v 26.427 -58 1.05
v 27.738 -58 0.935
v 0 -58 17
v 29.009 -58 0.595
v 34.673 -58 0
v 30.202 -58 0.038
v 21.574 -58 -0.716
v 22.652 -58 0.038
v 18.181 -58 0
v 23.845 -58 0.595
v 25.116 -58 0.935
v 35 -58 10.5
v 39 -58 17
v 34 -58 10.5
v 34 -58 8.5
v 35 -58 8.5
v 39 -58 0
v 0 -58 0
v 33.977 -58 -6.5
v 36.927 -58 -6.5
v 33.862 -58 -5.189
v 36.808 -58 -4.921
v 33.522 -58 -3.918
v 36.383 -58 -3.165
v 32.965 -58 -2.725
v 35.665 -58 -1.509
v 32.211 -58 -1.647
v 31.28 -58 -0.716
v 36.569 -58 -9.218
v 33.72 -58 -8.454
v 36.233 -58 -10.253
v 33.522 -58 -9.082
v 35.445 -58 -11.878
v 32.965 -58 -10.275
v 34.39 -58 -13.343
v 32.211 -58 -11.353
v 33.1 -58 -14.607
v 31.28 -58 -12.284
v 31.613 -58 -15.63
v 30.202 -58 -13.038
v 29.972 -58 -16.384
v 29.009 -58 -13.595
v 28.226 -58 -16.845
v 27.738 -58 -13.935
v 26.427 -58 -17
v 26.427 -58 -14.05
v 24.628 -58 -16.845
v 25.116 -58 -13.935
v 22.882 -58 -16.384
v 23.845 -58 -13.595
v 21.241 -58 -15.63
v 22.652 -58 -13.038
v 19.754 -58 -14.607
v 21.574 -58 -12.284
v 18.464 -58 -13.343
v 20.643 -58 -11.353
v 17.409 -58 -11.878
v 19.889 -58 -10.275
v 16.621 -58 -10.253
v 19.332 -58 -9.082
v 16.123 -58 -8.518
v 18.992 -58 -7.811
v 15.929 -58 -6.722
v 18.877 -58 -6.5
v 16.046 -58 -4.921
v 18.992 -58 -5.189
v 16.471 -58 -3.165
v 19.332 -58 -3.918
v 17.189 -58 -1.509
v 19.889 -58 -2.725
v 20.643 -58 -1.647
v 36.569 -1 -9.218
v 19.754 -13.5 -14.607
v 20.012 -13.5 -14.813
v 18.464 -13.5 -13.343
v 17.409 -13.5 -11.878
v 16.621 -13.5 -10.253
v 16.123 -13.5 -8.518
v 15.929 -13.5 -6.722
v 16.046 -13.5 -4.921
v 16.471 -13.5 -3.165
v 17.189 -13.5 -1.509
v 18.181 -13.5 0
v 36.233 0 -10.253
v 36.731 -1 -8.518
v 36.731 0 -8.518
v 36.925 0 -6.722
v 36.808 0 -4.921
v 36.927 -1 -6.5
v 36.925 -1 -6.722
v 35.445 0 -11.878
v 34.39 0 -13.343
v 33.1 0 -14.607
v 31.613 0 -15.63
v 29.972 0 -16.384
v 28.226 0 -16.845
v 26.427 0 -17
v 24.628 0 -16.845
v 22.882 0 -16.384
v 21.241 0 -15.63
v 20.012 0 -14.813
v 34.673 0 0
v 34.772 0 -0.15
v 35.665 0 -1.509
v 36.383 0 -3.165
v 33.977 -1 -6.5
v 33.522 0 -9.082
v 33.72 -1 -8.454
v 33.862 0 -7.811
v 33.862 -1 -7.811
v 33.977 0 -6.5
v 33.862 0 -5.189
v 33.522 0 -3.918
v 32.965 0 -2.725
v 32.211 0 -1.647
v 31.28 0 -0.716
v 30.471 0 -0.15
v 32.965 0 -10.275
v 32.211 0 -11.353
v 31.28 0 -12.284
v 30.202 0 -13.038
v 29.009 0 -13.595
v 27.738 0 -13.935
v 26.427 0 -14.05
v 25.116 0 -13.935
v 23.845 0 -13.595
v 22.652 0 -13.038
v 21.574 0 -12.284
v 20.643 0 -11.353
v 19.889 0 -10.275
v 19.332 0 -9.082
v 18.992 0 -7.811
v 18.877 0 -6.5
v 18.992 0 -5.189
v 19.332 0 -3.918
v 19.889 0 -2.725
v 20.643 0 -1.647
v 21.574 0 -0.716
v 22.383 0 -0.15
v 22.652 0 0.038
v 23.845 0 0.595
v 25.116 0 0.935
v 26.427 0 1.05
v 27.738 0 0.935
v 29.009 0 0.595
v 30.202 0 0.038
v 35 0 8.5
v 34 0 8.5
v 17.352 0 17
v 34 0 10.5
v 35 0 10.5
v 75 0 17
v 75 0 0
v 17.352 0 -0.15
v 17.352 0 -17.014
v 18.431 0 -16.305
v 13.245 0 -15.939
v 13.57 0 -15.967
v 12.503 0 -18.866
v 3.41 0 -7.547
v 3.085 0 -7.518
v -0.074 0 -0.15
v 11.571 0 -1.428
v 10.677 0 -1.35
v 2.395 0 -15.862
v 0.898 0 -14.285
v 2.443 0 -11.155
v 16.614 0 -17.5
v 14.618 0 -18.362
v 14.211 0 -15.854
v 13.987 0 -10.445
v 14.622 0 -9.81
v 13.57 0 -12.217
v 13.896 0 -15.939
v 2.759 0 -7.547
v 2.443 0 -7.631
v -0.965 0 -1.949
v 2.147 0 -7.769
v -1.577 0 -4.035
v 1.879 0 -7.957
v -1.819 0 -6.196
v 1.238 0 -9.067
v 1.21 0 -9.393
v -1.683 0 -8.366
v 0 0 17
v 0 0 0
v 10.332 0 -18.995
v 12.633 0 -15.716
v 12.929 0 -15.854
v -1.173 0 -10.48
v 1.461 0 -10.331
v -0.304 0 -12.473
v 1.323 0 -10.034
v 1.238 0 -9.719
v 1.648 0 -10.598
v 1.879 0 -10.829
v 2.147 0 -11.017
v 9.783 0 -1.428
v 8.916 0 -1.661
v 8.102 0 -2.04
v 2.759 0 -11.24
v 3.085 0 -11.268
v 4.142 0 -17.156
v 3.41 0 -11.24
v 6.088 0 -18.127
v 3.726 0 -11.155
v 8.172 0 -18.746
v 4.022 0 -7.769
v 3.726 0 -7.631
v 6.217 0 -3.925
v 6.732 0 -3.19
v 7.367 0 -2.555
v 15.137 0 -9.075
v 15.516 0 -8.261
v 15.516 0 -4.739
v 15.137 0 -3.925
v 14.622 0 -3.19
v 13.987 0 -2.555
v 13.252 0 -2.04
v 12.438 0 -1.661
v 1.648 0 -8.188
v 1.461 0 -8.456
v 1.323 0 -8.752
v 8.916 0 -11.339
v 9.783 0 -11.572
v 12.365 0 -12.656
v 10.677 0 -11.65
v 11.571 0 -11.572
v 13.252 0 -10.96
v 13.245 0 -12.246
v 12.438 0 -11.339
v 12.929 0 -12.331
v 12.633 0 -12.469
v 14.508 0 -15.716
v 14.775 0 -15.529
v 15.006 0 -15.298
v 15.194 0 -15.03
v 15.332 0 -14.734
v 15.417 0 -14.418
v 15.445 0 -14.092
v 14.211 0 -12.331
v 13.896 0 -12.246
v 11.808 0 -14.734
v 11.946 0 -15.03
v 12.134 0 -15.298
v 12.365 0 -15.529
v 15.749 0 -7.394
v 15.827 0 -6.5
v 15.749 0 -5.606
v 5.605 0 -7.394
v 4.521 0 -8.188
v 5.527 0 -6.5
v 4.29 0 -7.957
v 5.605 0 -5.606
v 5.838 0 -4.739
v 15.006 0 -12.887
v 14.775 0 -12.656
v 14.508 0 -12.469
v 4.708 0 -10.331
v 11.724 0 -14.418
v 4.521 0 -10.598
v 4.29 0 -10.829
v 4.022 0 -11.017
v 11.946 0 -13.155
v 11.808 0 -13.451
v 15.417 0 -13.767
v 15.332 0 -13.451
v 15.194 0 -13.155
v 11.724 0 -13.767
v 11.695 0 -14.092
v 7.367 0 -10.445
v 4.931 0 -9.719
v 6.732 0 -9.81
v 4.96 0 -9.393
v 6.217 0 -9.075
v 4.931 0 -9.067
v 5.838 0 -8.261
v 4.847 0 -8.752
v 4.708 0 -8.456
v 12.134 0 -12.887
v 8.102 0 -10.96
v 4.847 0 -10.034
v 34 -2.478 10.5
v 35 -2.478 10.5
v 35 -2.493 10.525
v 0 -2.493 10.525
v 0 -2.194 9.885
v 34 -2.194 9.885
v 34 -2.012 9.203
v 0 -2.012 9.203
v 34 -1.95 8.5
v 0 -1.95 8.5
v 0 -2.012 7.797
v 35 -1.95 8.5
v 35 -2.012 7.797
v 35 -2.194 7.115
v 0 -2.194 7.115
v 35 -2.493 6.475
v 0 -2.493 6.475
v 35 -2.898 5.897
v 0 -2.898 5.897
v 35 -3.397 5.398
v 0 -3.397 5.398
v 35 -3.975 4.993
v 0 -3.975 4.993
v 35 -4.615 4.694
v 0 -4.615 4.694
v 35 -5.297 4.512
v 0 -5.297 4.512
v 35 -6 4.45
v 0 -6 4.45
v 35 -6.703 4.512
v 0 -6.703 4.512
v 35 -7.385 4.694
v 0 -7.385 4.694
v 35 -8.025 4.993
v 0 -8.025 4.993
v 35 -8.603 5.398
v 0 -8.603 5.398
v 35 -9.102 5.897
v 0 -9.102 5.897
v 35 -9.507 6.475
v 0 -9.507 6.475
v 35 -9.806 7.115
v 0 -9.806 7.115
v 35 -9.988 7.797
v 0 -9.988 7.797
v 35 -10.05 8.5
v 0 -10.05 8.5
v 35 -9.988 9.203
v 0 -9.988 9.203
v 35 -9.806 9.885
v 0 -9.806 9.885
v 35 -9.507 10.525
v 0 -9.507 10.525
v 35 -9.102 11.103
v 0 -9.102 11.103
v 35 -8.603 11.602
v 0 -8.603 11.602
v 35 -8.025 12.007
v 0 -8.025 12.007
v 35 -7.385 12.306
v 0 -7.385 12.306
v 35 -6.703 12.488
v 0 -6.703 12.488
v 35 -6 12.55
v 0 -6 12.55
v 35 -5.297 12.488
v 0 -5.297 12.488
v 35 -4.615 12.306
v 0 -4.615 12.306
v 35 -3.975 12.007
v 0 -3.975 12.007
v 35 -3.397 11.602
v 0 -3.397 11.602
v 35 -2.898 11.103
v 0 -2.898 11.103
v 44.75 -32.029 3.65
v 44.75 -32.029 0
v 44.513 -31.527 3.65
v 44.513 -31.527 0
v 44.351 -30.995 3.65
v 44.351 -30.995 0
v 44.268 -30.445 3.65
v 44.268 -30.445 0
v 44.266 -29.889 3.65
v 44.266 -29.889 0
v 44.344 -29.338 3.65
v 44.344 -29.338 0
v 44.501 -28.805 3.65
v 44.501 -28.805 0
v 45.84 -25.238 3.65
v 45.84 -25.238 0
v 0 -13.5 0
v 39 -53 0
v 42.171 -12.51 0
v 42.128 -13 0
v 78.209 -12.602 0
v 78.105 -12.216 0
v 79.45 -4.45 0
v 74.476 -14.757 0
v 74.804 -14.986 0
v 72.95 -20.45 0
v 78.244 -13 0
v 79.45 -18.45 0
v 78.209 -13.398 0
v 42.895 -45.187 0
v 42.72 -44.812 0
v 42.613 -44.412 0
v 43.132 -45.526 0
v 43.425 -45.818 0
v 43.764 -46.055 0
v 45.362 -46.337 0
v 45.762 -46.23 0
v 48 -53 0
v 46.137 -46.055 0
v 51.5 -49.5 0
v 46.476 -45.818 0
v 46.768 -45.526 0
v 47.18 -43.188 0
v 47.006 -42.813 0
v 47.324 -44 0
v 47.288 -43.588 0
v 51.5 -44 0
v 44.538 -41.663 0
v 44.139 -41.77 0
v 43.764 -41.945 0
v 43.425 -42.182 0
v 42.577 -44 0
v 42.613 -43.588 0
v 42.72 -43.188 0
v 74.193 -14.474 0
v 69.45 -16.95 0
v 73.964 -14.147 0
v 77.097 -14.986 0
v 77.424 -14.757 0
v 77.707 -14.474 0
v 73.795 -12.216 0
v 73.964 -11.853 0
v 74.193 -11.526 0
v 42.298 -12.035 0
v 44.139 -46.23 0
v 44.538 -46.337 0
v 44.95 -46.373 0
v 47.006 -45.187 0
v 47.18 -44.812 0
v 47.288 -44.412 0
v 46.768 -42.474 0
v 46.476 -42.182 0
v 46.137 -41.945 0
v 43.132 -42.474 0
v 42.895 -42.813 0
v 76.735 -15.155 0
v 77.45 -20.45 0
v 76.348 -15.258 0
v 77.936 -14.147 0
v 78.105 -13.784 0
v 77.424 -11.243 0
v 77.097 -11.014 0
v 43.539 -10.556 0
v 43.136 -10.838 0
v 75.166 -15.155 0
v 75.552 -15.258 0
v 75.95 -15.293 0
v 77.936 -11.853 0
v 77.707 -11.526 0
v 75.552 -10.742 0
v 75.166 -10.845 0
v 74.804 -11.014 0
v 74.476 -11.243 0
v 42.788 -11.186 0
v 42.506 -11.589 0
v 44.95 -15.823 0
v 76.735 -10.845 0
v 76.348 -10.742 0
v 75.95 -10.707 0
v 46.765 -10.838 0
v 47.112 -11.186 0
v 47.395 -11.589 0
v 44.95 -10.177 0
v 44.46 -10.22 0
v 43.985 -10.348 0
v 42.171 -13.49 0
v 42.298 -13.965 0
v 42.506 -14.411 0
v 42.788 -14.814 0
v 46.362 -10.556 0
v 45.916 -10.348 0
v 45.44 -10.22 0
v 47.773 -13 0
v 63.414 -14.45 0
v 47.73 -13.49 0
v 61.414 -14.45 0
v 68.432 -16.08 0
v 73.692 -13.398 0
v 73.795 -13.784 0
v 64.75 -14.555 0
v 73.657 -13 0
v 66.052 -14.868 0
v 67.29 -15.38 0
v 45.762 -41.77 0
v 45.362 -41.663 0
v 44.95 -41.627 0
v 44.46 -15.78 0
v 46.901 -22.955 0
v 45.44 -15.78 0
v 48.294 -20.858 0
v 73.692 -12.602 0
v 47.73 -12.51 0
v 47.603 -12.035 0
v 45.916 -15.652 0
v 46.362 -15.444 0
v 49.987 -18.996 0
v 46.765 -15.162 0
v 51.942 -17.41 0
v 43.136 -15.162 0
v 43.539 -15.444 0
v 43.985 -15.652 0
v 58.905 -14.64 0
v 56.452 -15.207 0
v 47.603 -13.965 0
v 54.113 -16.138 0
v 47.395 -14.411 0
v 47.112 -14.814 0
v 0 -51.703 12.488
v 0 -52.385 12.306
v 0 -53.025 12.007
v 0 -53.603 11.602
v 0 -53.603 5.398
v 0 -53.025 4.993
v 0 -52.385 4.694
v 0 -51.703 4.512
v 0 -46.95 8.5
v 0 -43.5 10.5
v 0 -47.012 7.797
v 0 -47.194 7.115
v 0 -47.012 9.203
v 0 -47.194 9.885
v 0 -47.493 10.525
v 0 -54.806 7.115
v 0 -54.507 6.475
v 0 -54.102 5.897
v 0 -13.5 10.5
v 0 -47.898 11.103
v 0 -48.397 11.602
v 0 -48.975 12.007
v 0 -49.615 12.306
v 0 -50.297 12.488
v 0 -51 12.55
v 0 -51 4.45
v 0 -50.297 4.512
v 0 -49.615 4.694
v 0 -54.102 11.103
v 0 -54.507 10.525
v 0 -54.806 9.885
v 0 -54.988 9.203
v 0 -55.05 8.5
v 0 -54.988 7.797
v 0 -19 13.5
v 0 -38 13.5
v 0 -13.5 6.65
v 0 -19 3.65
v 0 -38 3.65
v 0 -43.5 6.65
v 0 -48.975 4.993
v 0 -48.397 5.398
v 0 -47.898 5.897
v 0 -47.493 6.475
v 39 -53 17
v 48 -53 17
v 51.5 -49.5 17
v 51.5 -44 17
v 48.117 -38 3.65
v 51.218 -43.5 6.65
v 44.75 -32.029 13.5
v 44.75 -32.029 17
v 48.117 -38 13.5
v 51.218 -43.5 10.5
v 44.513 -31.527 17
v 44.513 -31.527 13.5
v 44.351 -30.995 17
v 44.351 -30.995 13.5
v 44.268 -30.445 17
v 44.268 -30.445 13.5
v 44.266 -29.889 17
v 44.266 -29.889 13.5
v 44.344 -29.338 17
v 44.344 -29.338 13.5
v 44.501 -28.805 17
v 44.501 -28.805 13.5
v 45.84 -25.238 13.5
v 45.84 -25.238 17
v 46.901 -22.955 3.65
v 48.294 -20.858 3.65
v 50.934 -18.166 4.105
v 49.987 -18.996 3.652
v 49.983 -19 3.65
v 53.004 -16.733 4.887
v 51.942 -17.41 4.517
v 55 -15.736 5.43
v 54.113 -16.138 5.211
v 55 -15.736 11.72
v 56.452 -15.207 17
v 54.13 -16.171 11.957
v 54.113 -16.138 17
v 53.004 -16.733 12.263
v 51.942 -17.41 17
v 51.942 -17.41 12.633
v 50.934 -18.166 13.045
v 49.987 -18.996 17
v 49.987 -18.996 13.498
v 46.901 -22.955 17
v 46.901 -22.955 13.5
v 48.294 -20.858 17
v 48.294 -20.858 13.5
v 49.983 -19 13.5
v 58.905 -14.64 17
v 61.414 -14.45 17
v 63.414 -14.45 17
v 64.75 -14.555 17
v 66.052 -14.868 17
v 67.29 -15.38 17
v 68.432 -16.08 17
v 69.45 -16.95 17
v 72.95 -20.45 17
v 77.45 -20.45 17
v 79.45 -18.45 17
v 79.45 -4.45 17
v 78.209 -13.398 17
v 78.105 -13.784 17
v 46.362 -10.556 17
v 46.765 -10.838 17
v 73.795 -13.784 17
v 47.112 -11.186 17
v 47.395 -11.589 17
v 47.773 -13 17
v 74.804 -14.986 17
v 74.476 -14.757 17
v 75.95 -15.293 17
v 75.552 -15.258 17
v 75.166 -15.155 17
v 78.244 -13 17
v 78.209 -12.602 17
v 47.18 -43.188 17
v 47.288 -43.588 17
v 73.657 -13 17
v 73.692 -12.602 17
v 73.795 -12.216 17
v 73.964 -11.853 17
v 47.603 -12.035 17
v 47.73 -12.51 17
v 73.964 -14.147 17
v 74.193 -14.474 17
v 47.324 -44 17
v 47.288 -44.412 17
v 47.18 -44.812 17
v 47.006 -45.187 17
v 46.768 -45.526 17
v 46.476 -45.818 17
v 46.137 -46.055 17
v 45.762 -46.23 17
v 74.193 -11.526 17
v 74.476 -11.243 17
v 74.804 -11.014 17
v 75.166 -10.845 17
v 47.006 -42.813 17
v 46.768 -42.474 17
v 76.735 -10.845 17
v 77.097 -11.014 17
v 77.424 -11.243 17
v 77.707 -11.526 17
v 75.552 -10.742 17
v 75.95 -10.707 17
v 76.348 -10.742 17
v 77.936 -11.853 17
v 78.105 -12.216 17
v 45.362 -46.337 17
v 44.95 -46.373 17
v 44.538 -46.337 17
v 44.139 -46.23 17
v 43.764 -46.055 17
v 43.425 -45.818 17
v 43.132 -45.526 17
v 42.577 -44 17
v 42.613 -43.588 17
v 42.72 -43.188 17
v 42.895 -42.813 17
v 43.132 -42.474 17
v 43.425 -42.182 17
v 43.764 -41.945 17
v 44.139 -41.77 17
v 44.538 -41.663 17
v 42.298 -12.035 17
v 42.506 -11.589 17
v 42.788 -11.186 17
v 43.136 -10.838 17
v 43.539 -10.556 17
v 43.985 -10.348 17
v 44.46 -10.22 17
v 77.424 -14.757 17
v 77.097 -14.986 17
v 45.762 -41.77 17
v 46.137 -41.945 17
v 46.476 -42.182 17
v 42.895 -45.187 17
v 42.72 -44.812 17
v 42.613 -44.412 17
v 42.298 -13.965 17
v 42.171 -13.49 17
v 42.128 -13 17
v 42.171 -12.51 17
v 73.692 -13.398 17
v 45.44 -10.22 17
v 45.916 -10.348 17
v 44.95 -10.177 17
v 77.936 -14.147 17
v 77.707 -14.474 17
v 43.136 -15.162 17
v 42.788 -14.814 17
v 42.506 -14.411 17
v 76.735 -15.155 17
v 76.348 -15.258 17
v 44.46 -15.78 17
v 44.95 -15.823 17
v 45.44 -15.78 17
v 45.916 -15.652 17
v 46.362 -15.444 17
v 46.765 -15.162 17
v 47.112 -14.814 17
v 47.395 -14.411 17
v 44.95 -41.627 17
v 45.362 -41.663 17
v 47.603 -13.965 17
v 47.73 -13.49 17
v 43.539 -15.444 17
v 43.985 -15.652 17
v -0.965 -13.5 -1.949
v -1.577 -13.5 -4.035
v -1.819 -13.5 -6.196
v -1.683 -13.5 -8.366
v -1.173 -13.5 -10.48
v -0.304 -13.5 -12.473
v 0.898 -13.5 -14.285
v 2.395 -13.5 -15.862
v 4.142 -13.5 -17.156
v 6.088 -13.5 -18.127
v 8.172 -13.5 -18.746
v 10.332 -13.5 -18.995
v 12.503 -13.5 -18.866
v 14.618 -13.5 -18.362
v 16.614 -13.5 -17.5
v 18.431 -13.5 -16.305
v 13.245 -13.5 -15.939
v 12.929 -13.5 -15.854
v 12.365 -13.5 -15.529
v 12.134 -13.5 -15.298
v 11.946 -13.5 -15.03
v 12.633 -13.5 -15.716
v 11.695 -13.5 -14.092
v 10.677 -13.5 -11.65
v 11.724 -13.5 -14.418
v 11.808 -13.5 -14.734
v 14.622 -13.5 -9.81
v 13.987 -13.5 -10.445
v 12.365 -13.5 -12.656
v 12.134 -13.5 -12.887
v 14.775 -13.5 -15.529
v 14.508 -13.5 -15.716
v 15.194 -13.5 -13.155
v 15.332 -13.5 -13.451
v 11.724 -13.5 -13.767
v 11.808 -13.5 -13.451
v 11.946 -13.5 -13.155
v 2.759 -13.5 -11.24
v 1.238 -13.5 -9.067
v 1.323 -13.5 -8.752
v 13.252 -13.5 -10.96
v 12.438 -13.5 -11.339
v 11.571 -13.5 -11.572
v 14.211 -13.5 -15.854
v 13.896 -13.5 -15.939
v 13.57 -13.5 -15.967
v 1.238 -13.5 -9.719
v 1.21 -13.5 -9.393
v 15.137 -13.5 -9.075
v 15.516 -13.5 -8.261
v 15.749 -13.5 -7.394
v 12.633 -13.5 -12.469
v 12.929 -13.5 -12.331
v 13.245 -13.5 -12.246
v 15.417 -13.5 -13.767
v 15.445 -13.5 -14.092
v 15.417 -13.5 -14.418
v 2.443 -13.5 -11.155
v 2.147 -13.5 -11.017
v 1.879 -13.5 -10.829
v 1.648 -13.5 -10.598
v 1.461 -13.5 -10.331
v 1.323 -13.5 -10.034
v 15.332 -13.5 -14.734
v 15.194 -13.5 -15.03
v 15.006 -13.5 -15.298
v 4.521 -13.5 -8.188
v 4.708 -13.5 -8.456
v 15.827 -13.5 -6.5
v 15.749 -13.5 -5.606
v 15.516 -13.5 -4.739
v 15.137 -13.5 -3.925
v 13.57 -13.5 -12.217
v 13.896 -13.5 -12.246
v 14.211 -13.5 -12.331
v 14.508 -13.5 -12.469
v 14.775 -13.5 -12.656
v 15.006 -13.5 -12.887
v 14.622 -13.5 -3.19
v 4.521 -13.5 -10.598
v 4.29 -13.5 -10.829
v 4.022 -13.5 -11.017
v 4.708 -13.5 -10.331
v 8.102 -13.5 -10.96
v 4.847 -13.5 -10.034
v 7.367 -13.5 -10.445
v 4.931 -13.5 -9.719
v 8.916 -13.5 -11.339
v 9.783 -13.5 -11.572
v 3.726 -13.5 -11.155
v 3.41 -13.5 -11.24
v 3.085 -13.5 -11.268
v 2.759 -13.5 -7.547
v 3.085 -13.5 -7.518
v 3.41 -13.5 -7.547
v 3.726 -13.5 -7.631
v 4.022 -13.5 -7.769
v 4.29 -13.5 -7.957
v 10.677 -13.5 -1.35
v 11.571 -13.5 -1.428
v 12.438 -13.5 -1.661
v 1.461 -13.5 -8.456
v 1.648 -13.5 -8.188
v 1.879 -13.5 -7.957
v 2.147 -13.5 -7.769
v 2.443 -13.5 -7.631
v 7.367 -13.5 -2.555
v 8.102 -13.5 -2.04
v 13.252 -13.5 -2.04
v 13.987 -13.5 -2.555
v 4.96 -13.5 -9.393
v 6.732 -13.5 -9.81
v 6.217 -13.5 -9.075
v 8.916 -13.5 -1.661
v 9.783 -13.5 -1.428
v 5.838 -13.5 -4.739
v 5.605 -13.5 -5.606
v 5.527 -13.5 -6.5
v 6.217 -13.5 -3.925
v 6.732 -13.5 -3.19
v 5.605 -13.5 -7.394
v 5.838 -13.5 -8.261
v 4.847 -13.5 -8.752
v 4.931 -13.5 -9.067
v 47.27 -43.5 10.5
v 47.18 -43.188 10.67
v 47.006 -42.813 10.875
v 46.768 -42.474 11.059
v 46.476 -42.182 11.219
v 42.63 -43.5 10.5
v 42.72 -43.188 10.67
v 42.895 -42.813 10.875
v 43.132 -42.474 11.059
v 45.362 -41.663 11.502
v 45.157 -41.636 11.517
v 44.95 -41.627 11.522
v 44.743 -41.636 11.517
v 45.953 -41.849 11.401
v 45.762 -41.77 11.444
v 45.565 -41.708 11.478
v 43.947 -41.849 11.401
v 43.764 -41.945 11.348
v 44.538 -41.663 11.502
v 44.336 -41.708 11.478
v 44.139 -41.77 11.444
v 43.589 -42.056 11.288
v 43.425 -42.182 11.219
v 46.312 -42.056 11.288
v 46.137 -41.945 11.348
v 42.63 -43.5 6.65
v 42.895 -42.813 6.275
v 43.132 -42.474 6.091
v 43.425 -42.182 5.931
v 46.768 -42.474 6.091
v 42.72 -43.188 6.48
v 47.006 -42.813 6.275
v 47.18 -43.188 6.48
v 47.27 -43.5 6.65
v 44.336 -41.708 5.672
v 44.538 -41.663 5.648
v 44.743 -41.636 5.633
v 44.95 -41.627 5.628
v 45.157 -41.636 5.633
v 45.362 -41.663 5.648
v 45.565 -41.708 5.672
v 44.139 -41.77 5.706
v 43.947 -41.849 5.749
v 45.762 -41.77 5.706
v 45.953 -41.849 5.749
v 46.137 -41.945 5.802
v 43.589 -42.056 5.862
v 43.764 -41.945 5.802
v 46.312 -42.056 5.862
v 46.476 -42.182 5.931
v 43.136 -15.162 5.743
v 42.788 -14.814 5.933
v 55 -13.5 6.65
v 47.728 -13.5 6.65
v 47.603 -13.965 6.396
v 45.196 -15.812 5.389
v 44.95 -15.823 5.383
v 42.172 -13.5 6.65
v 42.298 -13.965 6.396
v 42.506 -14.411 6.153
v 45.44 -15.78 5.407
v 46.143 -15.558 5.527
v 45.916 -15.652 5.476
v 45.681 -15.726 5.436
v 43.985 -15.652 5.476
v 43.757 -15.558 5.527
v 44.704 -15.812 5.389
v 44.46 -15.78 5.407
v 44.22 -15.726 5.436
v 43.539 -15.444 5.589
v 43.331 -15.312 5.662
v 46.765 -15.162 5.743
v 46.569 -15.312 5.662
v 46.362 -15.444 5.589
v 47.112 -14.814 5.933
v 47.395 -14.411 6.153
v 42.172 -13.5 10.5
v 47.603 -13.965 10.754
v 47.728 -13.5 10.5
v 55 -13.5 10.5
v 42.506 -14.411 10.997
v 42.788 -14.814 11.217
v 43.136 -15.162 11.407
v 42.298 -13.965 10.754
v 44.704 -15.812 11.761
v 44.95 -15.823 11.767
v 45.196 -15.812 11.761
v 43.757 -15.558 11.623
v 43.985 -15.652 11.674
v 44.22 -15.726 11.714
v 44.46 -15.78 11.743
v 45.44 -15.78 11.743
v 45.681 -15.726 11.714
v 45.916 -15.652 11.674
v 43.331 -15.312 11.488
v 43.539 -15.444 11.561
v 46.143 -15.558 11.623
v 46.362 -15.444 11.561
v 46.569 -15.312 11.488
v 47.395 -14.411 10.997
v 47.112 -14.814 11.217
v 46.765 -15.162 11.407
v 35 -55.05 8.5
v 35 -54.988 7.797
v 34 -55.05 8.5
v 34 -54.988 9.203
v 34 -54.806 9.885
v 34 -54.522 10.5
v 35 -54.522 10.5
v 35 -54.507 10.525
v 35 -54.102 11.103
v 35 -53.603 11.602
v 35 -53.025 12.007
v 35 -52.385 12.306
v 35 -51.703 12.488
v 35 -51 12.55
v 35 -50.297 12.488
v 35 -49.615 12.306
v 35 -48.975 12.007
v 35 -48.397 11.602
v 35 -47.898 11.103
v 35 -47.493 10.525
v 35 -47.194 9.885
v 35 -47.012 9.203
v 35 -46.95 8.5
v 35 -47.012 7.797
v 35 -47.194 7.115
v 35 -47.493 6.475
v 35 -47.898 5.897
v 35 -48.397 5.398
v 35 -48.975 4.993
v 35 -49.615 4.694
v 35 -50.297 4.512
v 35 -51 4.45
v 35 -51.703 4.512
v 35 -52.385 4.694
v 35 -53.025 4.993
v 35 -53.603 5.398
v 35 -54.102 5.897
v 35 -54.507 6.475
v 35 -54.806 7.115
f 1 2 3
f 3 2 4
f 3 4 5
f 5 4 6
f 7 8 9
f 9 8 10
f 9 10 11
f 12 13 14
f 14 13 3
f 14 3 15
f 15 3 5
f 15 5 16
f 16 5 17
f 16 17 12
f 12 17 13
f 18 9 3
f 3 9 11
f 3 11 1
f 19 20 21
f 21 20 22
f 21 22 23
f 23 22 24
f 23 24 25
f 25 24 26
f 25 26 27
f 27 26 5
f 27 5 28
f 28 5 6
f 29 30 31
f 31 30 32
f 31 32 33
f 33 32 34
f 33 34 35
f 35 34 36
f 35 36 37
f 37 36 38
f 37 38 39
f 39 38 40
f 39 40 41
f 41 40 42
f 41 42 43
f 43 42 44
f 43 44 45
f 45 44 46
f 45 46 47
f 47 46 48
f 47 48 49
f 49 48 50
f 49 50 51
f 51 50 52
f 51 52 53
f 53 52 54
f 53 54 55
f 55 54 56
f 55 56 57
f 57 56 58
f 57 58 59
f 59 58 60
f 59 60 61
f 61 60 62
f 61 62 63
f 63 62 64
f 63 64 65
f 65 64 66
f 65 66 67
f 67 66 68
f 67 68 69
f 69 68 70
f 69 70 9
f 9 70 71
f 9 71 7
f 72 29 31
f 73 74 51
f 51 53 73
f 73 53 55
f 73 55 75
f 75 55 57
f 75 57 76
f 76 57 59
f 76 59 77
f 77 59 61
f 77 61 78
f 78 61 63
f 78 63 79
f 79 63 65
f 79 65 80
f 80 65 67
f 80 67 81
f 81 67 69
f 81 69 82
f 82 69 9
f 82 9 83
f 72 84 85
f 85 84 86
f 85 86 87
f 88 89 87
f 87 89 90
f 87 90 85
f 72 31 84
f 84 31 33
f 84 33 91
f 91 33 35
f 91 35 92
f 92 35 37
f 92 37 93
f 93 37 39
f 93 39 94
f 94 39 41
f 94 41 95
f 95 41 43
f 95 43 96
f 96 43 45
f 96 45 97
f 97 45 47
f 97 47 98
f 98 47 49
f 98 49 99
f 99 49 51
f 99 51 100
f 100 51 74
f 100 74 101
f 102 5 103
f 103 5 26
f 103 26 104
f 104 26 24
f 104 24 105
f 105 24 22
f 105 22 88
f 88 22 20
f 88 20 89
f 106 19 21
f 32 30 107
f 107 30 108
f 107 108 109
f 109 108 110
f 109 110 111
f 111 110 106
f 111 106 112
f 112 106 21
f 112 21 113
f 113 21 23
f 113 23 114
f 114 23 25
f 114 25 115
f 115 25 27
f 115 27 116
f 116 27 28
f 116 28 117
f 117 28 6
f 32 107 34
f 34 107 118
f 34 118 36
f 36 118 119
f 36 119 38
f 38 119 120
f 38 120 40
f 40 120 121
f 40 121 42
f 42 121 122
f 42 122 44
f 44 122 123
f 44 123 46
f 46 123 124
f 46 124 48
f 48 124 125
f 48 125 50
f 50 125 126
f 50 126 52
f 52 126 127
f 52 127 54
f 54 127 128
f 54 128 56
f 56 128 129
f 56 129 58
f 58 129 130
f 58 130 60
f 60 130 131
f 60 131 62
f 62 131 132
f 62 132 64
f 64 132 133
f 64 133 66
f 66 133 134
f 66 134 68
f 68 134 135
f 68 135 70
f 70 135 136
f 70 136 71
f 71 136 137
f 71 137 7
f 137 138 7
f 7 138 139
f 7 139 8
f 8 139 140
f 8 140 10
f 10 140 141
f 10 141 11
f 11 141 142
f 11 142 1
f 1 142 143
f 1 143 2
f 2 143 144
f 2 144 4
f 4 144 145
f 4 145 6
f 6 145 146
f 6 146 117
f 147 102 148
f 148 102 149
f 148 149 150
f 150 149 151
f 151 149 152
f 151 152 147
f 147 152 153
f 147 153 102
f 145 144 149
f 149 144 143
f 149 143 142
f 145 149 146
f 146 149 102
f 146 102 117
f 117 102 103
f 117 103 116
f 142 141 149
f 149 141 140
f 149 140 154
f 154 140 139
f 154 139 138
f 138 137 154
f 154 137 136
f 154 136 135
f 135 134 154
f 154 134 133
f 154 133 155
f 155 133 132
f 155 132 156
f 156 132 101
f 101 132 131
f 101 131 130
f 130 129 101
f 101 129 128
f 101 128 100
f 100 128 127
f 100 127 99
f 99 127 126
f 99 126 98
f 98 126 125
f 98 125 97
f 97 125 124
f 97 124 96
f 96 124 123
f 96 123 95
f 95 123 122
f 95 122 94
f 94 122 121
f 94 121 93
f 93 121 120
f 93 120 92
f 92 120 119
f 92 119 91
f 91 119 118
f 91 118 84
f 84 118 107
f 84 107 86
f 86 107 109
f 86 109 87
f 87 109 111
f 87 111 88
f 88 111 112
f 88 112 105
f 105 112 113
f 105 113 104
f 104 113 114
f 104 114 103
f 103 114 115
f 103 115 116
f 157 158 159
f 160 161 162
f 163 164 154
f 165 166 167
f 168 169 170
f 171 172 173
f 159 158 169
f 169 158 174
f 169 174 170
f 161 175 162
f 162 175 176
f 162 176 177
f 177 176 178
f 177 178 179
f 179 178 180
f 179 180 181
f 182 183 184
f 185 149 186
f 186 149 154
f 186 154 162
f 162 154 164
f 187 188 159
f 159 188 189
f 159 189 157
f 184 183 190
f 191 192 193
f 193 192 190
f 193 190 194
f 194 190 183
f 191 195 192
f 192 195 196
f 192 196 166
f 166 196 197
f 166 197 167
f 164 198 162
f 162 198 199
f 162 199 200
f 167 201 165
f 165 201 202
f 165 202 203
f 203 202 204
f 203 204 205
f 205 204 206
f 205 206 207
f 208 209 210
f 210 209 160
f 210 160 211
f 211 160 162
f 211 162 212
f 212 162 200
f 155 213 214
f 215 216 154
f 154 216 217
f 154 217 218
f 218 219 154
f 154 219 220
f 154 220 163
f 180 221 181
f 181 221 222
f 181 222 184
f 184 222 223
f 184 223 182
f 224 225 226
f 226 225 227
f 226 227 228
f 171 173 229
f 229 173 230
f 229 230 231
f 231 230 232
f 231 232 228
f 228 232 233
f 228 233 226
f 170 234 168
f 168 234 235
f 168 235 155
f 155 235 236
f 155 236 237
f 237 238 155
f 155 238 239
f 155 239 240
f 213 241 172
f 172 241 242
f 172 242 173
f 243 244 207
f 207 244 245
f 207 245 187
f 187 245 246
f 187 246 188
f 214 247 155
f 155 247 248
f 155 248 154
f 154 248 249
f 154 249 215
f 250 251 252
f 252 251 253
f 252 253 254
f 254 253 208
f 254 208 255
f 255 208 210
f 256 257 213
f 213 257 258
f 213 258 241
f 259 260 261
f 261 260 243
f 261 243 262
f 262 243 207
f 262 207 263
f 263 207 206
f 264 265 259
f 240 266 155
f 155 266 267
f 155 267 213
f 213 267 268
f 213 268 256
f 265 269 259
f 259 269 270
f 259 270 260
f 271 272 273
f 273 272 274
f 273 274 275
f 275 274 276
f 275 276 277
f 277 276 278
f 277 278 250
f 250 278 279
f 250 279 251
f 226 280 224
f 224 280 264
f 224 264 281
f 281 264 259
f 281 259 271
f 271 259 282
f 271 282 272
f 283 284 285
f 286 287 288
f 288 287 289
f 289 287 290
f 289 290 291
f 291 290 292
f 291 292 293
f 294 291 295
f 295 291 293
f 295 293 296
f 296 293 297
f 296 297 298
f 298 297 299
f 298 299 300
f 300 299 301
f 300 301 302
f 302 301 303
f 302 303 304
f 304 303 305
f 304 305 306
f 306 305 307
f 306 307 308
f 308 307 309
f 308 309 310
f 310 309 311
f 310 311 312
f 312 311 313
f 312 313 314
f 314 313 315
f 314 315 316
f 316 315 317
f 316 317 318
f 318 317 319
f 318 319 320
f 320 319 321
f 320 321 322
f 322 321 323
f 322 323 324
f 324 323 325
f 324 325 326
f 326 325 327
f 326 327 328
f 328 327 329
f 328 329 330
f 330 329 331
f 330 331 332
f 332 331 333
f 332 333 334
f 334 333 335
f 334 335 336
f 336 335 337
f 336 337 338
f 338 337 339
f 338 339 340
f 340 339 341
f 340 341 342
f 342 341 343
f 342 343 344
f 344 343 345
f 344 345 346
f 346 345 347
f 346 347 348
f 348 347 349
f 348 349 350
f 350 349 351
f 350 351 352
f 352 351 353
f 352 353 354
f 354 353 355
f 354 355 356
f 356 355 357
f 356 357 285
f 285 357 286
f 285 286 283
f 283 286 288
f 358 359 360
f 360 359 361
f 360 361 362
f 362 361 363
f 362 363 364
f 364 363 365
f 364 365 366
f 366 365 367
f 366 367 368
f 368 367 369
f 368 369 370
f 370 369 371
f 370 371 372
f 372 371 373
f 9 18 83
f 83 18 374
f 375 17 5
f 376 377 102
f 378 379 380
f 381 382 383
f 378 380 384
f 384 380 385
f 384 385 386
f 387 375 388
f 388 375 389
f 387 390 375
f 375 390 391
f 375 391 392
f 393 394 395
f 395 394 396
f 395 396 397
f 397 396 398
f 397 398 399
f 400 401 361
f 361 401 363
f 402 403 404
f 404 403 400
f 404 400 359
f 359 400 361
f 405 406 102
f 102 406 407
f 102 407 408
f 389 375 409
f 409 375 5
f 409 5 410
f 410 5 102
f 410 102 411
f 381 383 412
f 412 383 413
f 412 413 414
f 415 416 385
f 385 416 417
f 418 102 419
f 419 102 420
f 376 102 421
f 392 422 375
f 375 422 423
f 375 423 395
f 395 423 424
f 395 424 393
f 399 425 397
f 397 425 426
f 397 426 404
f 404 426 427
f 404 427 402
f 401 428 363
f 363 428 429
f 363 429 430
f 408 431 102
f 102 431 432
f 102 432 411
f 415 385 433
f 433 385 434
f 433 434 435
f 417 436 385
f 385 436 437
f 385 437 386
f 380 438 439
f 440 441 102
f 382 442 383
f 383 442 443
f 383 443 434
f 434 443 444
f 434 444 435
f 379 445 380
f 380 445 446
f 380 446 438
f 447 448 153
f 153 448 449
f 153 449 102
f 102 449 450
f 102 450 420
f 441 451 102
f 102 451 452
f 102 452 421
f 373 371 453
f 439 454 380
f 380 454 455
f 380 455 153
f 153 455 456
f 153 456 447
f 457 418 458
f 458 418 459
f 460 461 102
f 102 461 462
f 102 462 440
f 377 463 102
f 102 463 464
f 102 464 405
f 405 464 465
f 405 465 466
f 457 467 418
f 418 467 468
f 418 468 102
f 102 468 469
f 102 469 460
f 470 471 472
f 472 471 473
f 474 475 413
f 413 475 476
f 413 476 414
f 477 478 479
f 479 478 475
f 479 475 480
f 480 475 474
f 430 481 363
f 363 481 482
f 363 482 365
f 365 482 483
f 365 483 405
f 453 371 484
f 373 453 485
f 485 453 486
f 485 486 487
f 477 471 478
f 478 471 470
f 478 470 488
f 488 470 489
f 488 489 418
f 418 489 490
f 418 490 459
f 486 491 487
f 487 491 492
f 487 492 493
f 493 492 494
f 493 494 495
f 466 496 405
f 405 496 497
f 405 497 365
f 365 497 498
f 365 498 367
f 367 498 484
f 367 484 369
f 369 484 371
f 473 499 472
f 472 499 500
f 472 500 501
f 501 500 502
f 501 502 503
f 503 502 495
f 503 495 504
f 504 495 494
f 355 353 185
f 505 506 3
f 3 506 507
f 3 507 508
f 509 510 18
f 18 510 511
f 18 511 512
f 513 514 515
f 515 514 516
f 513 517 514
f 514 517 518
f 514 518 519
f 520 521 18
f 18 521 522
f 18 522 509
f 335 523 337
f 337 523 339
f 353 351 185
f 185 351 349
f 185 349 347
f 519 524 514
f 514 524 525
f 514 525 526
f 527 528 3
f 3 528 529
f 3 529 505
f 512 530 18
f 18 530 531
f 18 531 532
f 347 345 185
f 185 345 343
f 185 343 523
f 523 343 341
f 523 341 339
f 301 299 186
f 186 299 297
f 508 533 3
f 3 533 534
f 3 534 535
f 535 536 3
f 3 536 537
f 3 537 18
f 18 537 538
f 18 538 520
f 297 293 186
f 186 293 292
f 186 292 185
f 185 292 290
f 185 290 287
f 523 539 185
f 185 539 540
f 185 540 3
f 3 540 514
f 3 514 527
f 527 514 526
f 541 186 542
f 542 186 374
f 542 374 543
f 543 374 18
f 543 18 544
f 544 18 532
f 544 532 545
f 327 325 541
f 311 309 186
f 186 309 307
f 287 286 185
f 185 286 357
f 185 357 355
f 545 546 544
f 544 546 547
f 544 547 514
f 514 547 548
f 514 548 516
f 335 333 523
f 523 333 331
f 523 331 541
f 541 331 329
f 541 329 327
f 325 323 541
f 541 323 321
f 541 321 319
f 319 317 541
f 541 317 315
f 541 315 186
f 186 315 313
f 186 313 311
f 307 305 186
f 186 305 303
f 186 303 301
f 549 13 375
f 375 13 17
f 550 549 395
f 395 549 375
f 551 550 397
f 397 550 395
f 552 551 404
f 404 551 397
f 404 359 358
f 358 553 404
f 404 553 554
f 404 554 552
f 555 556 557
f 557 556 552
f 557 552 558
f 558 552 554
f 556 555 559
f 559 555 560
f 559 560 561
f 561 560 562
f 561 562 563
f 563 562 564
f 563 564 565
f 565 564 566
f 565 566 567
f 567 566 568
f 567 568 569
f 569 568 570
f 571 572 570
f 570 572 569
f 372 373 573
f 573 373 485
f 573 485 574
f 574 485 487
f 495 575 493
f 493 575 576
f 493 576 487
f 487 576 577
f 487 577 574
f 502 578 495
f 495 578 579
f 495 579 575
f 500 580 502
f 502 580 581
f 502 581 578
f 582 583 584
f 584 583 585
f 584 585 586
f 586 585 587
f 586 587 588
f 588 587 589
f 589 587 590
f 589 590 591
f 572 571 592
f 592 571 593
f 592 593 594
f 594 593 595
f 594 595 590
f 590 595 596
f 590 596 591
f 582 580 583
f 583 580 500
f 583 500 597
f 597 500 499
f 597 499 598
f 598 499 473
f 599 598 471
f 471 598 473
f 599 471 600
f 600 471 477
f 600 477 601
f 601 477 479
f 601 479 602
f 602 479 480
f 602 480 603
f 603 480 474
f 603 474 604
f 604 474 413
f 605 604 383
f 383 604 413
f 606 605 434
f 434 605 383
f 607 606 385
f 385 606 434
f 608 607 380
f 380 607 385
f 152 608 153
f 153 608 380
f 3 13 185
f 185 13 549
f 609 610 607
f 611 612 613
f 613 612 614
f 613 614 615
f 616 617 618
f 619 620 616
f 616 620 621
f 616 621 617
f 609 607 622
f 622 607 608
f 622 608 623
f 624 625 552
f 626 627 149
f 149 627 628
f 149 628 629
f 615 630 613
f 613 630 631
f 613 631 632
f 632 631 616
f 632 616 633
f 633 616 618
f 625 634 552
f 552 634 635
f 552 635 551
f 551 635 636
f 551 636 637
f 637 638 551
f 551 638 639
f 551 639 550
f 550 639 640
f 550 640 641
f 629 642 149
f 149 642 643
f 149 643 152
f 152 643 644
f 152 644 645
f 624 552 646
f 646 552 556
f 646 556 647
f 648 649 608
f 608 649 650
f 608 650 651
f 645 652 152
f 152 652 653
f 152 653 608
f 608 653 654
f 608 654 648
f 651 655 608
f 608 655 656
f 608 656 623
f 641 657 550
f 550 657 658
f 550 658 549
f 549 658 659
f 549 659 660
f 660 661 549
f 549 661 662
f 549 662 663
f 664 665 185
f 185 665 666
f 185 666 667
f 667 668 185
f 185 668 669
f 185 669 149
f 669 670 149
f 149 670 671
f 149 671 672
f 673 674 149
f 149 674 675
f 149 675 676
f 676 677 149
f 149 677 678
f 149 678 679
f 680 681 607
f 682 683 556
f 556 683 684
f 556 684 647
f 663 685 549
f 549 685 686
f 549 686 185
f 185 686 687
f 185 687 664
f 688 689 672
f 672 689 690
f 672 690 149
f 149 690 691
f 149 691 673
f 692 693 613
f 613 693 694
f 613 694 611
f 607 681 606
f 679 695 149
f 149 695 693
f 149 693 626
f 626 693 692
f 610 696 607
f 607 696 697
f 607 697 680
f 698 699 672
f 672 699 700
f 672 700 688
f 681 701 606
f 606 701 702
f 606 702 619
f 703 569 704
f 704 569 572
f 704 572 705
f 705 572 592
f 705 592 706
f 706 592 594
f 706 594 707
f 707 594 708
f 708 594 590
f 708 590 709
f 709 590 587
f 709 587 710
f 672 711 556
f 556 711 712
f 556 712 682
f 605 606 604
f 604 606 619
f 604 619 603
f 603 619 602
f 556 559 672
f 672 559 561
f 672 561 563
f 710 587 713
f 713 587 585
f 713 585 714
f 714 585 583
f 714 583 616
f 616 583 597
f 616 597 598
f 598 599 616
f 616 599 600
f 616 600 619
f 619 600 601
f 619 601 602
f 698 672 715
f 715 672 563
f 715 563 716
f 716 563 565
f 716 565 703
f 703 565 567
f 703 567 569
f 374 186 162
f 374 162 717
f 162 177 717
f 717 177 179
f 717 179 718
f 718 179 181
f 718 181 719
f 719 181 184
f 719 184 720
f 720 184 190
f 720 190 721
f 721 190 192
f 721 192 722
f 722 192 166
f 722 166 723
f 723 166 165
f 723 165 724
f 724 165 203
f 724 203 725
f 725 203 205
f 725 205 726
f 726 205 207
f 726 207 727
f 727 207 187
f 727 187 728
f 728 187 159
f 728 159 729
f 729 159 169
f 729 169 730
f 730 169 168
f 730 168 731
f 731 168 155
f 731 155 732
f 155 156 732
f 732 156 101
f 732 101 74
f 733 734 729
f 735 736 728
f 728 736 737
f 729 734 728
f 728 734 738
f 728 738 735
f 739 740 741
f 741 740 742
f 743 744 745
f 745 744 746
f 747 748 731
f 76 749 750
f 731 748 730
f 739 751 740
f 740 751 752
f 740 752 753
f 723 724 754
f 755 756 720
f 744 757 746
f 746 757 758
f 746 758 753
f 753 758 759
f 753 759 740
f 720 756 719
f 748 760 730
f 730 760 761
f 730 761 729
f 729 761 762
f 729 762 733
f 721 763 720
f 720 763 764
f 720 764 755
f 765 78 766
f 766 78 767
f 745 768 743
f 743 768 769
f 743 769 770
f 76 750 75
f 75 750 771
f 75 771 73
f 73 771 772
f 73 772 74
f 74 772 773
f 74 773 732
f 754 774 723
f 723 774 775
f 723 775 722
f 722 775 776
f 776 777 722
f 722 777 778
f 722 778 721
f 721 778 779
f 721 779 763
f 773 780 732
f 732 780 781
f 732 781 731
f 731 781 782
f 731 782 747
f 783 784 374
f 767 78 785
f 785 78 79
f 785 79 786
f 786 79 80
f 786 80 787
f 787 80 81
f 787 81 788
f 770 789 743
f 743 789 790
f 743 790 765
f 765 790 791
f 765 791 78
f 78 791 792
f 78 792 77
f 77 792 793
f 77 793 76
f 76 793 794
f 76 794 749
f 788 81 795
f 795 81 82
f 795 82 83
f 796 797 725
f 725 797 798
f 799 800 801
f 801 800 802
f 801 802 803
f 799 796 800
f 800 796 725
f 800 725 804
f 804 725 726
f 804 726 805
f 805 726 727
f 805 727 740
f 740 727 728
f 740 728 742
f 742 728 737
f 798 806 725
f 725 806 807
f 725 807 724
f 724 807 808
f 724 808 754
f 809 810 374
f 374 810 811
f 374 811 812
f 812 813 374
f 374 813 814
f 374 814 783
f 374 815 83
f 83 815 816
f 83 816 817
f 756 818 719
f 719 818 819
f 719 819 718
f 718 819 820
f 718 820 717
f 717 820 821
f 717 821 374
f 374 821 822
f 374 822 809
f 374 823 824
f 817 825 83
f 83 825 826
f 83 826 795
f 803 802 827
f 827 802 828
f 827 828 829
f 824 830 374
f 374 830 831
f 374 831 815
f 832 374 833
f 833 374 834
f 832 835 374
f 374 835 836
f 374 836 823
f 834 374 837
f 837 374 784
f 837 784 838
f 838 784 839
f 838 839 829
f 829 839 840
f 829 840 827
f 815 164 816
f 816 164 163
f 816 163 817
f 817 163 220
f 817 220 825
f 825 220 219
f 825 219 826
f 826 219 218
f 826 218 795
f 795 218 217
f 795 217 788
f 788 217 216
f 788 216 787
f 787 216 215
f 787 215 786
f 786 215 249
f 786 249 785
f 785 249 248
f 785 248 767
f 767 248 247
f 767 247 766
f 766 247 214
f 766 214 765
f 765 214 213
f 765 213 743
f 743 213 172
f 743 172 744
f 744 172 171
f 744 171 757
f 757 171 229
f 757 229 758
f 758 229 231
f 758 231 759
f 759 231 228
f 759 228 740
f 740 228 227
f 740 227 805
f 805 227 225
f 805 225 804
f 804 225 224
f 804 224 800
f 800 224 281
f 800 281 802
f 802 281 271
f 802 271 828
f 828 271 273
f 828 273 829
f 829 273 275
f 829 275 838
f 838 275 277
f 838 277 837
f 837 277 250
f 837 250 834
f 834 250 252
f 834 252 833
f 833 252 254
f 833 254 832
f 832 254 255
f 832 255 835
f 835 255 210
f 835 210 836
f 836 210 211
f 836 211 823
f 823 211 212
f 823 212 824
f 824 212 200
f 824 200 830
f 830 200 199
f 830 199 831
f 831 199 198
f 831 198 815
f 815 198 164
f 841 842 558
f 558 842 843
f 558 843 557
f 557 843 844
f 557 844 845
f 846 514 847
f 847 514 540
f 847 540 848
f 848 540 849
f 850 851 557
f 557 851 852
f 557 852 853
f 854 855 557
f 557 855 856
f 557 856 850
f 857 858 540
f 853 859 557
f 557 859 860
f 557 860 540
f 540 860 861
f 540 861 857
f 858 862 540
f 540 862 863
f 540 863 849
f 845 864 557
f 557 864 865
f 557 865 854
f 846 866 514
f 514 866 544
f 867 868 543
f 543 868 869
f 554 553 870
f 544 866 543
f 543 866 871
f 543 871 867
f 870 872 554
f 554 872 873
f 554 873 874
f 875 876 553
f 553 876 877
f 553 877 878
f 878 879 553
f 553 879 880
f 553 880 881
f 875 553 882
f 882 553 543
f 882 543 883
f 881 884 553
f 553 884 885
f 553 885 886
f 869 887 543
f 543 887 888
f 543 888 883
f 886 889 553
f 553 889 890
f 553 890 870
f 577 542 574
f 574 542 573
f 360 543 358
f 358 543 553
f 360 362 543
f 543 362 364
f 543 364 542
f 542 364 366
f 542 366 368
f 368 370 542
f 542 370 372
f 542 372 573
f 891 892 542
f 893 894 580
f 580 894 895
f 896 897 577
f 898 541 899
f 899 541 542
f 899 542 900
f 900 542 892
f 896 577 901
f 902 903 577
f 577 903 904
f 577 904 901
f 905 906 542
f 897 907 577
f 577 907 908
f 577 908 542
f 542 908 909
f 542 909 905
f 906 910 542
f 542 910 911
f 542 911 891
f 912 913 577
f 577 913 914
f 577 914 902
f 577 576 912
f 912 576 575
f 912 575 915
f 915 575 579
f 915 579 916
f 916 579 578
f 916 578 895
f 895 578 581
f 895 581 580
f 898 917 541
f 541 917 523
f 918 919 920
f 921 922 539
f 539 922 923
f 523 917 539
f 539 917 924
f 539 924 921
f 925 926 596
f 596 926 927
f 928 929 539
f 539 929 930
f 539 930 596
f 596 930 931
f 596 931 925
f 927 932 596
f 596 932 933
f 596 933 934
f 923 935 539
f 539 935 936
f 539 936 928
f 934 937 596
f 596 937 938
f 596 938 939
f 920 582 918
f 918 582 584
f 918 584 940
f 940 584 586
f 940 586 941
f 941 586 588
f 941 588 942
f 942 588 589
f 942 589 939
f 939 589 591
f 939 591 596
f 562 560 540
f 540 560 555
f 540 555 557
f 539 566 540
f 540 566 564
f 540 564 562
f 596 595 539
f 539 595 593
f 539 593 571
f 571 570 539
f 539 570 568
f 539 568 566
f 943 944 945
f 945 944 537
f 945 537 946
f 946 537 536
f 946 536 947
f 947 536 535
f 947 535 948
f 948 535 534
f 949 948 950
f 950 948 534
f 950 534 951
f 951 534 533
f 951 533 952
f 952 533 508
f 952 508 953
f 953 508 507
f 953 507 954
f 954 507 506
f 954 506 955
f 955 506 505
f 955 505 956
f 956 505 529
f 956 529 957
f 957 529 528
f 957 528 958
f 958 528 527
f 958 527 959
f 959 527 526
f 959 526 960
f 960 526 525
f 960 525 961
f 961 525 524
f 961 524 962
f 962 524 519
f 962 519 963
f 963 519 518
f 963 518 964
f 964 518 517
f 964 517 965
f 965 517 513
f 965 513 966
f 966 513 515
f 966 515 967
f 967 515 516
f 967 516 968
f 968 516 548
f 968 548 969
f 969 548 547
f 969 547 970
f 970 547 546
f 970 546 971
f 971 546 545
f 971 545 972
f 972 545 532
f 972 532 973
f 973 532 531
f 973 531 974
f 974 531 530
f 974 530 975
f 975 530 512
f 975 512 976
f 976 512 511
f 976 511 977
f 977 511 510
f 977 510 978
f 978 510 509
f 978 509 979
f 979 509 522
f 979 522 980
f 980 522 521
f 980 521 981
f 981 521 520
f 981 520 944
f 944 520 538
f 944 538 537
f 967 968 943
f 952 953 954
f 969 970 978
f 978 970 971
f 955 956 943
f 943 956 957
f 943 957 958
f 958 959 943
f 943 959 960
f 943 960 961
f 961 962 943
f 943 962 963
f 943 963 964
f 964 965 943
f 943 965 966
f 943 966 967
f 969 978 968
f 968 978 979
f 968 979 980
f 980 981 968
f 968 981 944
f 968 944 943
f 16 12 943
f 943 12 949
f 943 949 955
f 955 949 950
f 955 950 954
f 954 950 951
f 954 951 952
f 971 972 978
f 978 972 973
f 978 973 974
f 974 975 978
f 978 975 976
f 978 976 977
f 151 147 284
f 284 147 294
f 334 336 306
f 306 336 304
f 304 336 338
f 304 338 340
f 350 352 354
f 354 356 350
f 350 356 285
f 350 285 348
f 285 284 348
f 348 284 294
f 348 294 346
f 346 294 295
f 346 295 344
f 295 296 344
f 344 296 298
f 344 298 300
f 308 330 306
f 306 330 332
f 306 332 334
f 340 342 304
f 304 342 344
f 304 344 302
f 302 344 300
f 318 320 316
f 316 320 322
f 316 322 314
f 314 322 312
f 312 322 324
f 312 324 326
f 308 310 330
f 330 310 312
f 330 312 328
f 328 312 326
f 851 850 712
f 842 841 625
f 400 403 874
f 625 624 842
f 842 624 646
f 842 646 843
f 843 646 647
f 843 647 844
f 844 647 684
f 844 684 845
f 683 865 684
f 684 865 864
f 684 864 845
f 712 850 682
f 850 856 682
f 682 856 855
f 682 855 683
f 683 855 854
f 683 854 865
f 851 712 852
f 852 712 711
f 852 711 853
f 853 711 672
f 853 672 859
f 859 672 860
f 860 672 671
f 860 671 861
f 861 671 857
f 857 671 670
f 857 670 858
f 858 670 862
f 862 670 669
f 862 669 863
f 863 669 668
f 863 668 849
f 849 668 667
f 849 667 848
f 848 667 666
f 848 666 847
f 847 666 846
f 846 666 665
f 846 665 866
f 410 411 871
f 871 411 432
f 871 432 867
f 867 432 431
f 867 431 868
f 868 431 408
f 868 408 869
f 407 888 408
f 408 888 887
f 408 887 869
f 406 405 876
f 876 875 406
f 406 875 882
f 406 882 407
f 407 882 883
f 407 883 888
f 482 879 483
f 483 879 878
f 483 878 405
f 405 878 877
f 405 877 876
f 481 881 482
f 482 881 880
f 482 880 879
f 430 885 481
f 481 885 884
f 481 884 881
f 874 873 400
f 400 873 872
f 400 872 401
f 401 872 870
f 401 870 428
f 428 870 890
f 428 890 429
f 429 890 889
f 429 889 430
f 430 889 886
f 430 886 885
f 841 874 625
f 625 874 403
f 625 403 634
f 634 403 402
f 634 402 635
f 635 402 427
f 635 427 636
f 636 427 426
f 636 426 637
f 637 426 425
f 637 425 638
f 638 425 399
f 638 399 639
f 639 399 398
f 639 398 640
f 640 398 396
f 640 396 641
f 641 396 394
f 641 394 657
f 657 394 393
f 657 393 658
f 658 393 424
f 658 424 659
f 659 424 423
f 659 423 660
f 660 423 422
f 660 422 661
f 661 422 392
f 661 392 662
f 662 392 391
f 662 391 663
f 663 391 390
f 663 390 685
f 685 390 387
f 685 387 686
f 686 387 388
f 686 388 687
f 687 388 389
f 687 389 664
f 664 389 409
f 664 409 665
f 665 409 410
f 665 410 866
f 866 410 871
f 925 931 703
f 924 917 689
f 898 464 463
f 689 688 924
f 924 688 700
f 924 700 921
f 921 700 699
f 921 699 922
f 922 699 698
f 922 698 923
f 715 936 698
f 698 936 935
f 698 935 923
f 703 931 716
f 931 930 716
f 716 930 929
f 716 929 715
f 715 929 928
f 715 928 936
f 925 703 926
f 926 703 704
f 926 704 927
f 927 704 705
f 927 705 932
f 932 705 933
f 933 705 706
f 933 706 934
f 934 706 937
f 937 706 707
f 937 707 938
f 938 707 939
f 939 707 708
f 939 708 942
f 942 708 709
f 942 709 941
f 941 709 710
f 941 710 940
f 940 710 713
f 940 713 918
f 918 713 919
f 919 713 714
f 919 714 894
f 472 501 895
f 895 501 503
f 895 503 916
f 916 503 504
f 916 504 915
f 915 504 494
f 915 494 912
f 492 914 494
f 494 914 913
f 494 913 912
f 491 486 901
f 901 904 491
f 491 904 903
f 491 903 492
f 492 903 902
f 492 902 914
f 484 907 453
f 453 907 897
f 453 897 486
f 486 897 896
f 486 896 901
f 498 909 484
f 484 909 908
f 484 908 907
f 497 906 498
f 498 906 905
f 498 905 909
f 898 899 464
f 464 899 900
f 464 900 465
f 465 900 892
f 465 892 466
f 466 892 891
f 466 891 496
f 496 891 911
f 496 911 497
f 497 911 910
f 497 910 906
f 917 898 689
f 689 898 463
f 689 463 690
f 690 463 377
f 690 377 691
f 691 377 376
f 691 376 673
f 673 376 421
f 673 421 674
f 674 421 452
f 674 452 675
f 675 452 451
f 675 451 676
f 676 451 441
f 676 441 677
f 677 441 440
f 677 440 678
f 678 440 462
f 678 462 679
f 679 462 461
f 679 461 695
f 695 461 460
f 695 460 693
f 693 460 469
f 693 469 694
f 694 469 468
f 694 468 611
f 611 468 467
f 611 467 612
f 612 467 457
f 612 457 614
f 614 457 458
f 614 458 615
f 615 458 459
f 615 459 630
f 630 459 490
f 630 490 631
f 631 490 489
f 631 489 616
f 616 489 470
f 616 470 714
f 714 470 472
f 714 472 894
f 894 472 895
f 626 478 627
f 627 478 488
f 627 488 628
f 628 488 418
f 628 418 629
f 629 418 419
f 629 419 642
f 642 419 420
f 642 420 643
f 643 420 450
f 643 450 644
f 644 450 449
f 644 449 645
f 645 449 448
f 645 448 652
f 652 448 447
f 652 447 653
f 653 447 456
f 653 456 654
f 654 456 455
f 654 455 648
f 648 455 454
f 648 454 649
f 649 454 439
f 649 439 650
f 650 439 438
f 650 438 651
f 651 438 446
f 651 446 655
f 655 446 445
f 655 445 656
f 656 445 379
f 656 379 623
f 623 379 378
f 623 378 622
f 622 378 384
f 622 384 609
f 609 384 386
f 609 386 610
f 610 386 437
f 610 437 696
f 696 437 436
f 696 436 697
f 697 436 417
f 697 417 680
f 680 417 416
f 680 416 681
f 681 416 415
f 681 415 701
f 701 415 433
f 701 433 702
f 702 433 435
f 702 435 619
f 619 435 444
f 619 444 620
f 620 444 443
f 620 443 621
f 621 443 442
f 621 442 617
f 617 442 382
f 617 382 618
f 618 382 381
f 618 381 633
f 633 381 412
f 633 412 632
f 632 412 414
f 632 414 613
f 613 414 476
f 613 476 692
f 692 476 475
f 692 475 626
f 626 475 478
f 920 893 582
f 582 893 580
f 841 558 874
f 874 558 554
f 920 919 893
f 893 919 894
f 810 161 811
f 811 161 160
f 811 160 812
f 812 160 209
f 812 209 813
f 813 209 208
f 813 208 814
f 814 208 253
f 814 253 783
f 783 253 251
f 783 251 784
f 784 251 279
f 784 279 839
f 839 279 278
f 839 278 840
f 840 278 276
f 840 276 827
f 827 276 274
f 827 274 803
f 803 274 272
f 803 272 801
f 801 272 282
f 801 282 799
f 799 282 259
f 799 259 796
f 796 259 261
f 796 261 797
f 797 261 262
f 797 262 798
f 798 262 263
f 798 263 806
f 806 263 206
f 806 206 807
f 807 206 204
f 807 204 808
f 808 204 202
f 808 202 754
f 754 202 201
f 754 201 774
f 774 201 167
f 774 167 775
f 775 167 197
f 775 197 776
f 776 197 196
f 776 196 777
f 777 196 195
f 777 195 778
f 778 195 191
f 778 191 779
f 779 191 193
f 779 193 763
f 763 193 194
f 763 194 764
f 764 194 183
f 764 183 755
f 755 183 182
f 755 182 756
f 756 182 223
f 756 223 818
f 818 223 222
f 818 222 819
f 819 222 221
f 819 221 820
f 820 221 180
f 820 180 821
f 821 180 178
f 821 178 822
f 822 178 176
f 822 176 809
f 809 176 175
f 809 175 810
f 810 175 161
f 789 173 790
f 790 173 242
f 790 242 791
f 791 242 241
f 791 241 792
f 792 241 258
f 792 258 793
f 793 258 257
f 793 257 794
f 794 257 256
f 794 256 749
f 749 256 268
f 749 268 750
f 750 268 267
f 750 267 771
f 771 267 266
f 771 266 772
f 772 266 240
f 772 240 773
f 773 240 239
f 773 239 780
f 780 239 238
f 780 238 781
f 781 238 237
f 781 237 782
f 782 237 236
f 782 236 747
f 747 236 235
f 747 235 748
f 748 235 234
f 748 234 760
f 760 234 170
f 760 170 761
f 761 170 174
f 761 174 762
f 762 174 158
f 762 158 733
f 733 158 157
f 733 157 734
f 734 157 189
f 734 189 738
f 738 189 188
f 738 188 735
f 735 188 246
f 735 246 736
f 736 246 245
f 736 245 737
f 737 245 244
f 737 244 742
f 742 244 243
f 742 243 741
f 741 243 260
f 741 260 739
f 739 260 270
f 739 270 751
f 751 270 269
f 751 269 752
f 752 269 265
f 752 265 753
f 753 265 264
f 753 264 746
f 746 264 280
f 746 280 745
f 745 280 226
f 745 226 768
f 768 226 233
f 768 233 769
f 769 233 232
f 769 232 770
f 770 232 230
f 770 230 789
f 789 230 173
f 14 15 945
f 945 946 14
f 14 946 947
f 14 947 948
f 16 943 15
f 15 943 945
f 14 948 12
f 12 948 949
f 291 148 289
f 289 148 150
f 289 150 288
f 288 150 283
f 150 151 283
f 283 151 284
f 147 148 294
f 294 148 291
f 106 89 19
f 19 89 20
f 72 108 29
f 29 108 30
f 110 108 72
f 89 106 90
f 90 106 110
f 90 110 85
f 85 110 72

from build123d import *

# Parameters (mm, degrees)
BOSS_EXTRUDE1_DEPTH     = 17
SKETCH2_R               = 10.5
BOSS_EXTRUDE2_DEPTH     = 58
SKETCH3_R               = 12.5
BOSS_EXTRUDE3_DEPTH     = 13.5
SKETCH4_R               = 7.55
SKETCH4_R_2             = 5.15
CUT_EXTRUDE1_DEPTH      = 59
SKETCH5_R               = 4.05
CUT_EXTRUDE2_DEPTH      = 35
SKETCH6_R               = 2.293291756
SKETCH6_R_2             = 2.82251293
SKETCH6_R_3             = 2.373314239
CUT_EXTRUDE3_DEPTH      = 18
CUT_EXTRUDE4_DEPTH      = 20
SKETCH10_R              = 1.875
CUT_EXTRUDE6_DEPTH      = 59
SKETCH11_W              = 1
SKETCH11_H              = 2
CUT_EXTRUDE7_DEPTH      = 8
CUT_EXTRUDE9_DEPTH      = 1
CUT_EXTRUDE9_DEPTH_BACK = 57


with BuildPart() as part:
    # Sketch1 → Boss-Extrude1 (new body)
    with BuildSketch(Plane.XY):
        with BuildLine():
            Line((39, -53), (48, -53))
            Line((48, -53), (51.5, -49.5))
            Line((51.5, -49.5), (51.5, -44))
            Line((51.5, -44), (44.75, -32.029420251))
            ThreePointArc((44.75, -32.029420251), (44.267998826, -30.444746543), (44.500869457, -28.804841922))
            Line((44.500869457, -28.804841922), (45.840453499, -25.237554933))
            ThreePointArc((45.840453499, -25.237554933), (51.941858088, -17.410271227), (61.414466094, -14.45))
            Line((61.414466094, -14.45), (63.414466094, -14.45))
            ThreePointArc((63.414466094, -14.45), (66.680873506, -15.099728831), (69.45, -16.95))
            Line((69.45, -16.95), (72.95, -20.45))
            Line((72.95, -20.45), (77.45, -20.45))
            Line((77.45, -20.45), (79.45, -18.45))
            Line((79.45, -18.45), (79.45, -4.45))
            Line((79.45, -4.45), (75, 0))
            Line((75, 0), (39, 0))
            Line((39, 0), (0, 0))
            Line((0, 0), (0, -58))
            Line((0, -58), (39, -58))
            Line((39, -58), (39, -53))
        make_face()
    extrude(amount=BOSS_EXTRUDE1_DEPTH)

    # Sketch2 → Boss-Extrude2 (add)
    with BuildSketch(Plane(origin=(0, 0, 0), x_dir=(1, 0, 0), z_dir=(0, 1, 0))):
        with Locations((26.427, 6.5)):
            Circle(SKETCH2_R)
    extrude(amount=-BOSS_EXTRUDE2_DEPTH)

    # Sketch3 → Boss-Extrude3 (add)
    with BuildSketch(Plane(origin=(0, 0, 0), x_dir=(1, 0, 0), z_dir=(0, 1, 0))):
        with Locations((10.677078252, 6.5)):
            Circle(SKETCH3_R)
    extrude(amount=-BOSS_EXTRUDE3_DEPTH)

    # Sketch4 → Cut-Extrude1 (cut, through all)
    with BuildSketch(Plane(origin=(0, 0, 0), x_dir=(1, 0, 0), z_dir=(0, 1, 0))):
        with Locations((26.427, 6.5)):
            Circle(SKETCH4_R)
        with Locations((10.677078252, 6.5)):
            Circle(SKETCH4_R_2)
    extrude(amount=-CUT_EXTRUDE1_DEPTH, mode=Mode.SUBTRACT)

    # Sketch5 → Cut-Extrude2 (cut)
    with BuildSketch(Plane.ZY):
        with Locations((8.5, -6)):
            Circle(SKETCH5_R)
        with Locations((8.5, -51)):
            Circle(SKETCH5_R)
        Polygon((10.5, -43.5), (6.65, -43.5), (3.65, -38), (3.65, -19), (6.65, -13.5), (10.5, -13.5), (13.5, -19), (13.5, -38), align=None)
    extrude(amount=-CUT_EXTRUDE2_DEPTH, mode=Mode.SUBTRACT)

    # Sketch6 → Cut-Extrude3 (cut, through all)
    with BuildSketch(Plane(origin=(0, 0, 0), x_dir=(-1, 0, 0), z_dir=(0, 0, -1))):
        with Locations((-75.950256659, -13)):
            Circle(SKETCH6_R)
        with Locations((-44.950256659, -13)):
            Circle(SKETCH6_R_2)
        with Locations((-44.950256659, -44)):
            Circle(SKETCH6_R_3)
    extrude(amount=-CUT_EXTRUDE3_DEPTH, mode=Mode.SUBTRACT)

    # Sketch8 → Cut-Extrude4 (cut)
    with BuildSketch(Plane.ZY.offset(-35)):
        Polygon((10.5, -43.5), (13.5, -38), (13.5, -19), (10.5, -13.5), (6.65, -13.5), (3.65, -19), (3.65, -38), (6.65, -43.5), align=None)
    extrude(amount=-CUT_EXTRUDE4_DEPTH, mode=Mode.SUBTRACT)

    # Sketch10 → Cut-Extrude6 (cut, through all)
    with BuildSketch(Plane(origin=(0, 0, 0), x_dir=(1, 0, 0), z_dir=(0, 1, 0))):
        with Locations((13.570159095, 14.092477082)):
            Circle(SKETCH10_R)
        with Locations((3.08460117, 9.393080843)):
            Circle(SKETCH10_R)
    extrude(amount=-CUT_EXTRUDE6_DEPTH, mode=Mode.SUBTRACT)

    # Sketch11 → Cut-Extrude7 (cut)
    with BuildSketch(Plane.XZ.offset(58)):
        with Locations((34.5, 9.5)):
            Rectangle(SKETCH11_W, SKETCH11_H)
    cut_extrude7 = extrude(amount=-CUT_EXTRUDE7_DEPTH, mode=Mode.SUBTRACT)

    # Mirror1: Cut-Extrude7 across plane
    add(cut_extrude7.mirror(Plane.ZX.offset(-29)), mode=Mode.SUBTRACT)

    # Sketch13 → Cut-Extrude9 (cut, two sides)
    with BuildSketch(Plane.XZ.offset(58)) as cut_extrude9_sk:
        with BuildLine():
            Line((147.448117004, -6.5), (36.927, -6.5))
            Line((36.927, -6.5), (33.977, -6.5))
            ThreePointArc((33.977, -6.5), (33.912408703, -7.485472751), (33.719739988, -8.454083791))
            Line((33.719739988, -8.454083791), (36.569221176, -9.217599974))
            Line((36.569221176, -9.217599974), (143.32442244, -37.82256994))
            Line((143.32442244, -37.82256994), (362.475609494, -66.674371065))
            Line((362.475609494, -66.674371065), (366.599304057, -35.351801125))
            Line((366.599304057, -35.351801125), (147.448117004, -6.5))
        make_face()
    extrude(amount=CUT_EXTRUDE9_DEPTH, mode=Mode.SUBTRACT)
    extrude(cut_extrude9_sk.sketch, amount=-CUT_EXTRUDE9_DEPTH_BACK, mode=Mode.SUBTRACT)


solid = part.part
